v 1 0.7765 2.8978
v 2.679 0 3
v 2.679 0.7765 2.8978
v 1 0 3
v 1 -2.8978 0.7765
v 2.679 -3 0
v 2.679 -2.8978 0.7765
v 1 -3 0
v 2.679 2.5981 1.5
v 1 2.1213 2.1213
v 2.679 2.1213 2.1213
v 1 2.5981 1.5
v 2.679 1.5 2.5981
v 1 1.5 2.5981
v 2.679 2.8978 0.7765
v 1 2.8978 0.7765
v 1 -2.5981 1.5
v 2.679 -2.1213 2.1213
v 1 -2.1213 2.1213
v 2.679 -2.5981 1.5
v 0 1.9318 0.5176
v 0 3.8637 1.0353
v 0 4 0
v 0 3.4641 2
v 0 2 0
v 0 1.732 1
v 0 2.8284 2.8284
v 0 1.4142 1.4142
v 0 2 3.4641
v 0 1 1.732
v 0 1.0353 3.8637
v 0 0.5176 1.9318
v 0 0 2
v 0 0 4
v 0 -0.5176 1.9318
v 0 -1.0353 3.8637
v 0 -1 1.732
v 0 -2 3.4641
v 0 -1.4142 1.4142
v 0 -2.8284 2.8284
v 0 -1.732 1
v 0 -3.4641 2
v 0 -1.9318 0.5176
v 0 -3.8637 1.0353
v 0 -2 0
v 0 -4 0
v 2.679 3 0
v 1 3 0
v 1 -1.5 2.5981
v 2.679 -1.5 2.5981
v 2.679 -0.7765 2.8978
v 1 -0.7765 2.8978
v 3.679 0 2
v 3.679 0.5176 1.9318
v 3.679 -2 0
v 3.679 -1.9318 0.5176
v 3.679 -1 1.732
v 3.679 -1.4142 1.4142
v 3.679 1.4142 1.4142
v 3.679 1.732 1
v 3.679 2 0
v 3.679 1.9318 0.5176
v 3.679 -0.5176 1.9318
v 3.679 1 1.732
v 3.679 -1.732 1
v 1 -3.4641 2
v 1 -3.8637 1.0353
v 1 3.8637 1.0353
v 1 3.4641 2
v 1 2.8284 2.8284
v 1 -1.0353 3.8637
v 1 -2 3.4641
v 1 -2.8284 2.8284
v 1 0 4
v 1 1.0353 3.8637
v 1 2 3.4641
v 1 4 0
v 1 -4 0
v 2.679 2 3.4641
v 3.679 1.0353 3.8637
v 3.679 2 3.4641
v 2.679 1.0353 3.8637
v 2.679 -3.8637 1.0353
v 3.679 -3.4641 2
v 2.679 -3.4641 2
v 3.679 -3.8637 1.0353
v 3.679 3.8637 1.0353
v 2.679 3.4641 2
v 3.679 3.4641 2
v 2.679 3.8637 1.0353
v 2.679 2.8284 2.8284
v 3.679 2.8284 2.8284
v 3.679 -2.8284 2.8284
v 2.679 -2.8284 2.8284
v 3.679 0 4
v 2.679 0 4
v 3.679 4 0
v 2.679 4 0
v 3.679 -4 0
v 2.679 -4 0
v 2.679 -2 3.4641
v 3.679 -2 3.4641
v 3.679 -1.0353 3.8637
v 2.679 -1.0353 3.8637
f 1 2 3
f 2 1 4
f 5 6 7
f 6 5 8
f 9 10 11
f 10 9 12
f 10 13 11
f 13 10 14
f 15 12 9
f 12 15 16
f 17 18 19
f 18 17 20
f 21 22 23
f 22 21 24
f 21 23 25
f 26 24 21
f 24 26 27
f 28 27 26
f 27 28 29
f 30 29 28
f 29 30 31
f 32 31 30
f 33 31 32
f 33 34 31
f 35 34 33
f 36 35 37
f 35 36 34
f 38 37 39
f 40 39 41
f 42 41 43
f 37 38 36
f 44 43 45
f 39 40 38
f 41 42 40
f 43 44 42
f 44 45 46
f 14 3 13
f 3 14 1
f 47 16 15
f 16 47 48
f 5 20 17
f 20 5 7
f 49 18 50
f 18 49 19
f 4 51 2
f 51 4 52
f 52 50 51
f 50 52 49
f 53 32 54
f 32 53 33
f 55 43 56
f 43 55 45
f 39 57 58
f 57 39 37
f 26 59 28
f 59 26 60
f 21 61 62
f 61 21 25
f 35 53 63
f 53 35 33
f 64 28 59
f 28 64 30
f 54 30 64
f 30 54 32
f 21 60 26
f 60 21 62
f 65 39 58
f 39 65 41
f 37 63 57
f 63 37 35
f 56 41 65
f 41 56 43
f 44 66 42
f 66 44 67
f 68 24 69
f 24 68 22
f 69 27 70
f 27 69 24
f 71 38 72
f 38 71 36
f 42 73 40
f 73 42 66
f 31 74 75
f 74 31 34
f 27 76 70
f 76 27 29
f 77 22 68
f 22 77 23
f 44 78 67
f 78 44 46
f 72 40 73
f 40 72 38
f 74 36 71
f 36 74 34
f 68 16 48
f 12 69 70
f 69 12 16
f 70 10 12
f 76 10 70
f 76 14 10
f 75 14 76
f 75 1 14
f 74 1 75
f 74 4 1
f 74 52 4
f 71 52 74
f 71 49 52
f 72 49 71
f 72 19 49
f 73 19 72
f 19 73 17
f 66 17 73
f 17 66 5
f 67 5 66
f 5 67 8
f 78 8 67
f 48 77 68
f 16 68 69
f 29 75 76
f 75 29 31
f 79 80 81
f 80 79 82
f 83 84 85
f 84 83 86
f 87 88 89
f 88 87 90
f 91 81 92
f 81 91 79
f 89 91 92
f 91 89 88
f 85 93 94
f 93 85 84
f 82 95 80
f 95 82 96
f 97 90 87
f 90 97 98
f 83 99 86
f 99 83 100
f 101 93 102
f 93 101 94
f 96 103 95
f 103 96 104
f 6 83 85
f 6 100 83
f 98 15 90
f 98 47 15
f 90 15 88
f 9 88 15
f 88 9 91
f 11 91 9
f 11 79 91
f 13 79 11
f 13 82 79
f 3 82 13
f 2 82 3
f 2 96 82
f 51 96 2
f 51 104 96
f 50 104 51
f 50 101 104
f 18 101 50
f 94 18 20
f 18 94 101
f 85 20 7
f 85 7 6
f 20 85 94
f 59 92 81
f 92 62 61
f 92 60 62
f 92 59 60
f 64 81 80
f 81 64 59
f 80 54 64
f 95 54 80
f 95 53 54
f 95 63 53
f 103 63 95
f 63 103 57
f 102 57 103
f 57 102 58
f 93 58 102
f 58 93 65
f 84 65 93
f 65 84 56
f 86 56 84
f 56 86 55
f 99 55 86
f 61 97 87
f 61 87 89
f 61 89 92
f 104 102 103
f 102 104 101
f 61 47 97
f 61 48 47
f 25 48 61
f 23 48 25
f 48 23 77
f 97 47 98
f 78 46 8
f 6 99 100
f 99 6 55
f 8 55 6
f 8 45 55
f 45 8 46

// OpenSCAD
// file: ../build_environments.scad
// build_environments.scad: modules to build level sections
//

module pool(diameter=10.0, wall_height=2.0, step_width=3.0, connections=[])
{
    difference() {
        union() {
        difference() {
            cylinder(h=0.5,r1=diameter+step_width,r2=diameter+step_width,$fn=48);
            translate([0,0,-0.1])
                cylinder(h=0.7,r1=diameter,r2=diameter,$fn=48);
        }
        difference() {
            cylinder(h=wall_height,r1=diameter+step_width+1.0,r2=diameter+step_width+1.0,$fn=48);
            translate([0,0,-0.1])
                cylinder(h=wall_height+0.2,r1=diameter+step_width,r2=diameter+step_width,$fn=48);
        }
        }
    
        for (c = connections)
        {
            rotate([0,90,0]) {
                angle = atan2(c[1],c[0]);
                rotate([-angle,0,0]) {
                    cylinder(h=diameter+5.0,r1=c[2],r2=c[2],$fn=48);
                }
            }
        }
    }
}

module straight(length=10.0, width=2.0, dy1=0.0, dy2=0.0, dz=0.0)
{
    dims = [0, 0, 0, 0, 0, (dz/length)];
    matrix = [
        [ 1, dims[0], dims[1], 0 ],
        [ dims[2], 1, dims[4], 0 ],
        [ dims[5], dims[3], 1, 0 ],
        [ 0, 0, 0, 1 ]
    ];
    multmatrix(matrix)
    difference() {
        translate([dy1,0,0])
        union() {
            rotate([0,90,0]) {
                difference() {
                    cylinder(h=(length-dy1-dy2),r1=width+1.0,r2=width+1.0,$fn=24);
                    translate([0,0,-0.1])
                        cylinder(h=(length-dy1-dy2+0.2),r1=width,r2=width,$fn=24);
                }
                difference() {
                    cylinder(h=1.0,r1=width+2.0,r2=width+2.0,$fn=24);
                    translate([0,0,-0.1])
                        cylinder(h=1.2,r1=width,r2=width,$fn=24);
                }
                translate([0,0,(length-dy1-dy2)-1.0]) {
                    difference() {
                        cylinder(h=1.0,r1=width+2.0,r2=width+2.0,$fn=24);
                        translate([0,0,-0.1])
                            cylinder(h=1.2,r1=width,r2=width,$fn=24);
                    }
                }
            }
        }
        translate([0,0,-(2*width+4.0)/2])
            cube([3*length,3*length,2*width+4.0],center=true);
    }
}

module curve(p0=[0,0], center=[0,0], dir=1, angle=0.0, width=2.0)
{
    radius = sqrt((p0[0]-center[0])*(p0[0]-center[0]) + (p0[1]-center[1])*(p0[1]-center[1]));
    if (dir == 0) {
        difference() {
            rotate([0,0,-90])
            difference() {
                rotate_extrude(angle = angle, convexity = 10, $fn=32)
                    translate([radius, 0, 0])
                        circle(r = width+1.0,$fn=24);
                rotate([0,0,-1.0])
                    rotate_extrude(angle = angle+2.0, convexity = 10, $fn=32)
                        translate([radius, 0, 0])
                            circle(r = width,$fn=24);
            }
            translate([0,0,-(2*width+4.0)/2])
                cube([5*radius,5*radius,2*width+4.0],center=true);
        }
    }
    else {
        difference() {
            rotate([0,0,90])
            difference() {
                rotate_extrude(angle = -angle, convexity = 10, $fn=32)
                    translate([radius, 0, 0])
                        circle(r = width+1.0,$fn=24);
                rotate([0,0,1.0])
                    rotate_extrude(angle = -angle-2.0, convexity = 10, $fn=32)
                        translate([radius, 0, 0])
                            circle(r = width,$fn=24);
            }
            translate([0,0,-(2*width+4.0)/2])
                cube([5*radius,5*radius,2*width+4.0],center=true);
        }
    }

}

// test pool
//pool(diameter=12.0000, wall_height=3.0000, step_width=3.0000, connections=[[0.0000,-26.0000,2.0000], [23.6074,0.0000,2.0000]]);

// test straight, slope
//straight(length=26.0000, width=2.0000, dy1=11.8322, dy2=6.7082, dz=0.0000);
//straight(length=29.1549, width=12.0000, dy1=0.0000, dy2=0.0000, dz=-15.0000);

// test curve
//curve(p0=[23.6074, 0.0000], center=[23.6074, 5.0000], dir=0, angle=60.1011, width=2.0000);
//curve(p0=[33.6426, 12.4219], center=[37.9771, 9.9295], dir=1, angle=120.4627, width=2.0000);
// main file
use <../build_environments.scad>;
straight(length=8.2616, width=2.0000, dy1=0.0000, dy2=4.5826, dz=0.0000);
